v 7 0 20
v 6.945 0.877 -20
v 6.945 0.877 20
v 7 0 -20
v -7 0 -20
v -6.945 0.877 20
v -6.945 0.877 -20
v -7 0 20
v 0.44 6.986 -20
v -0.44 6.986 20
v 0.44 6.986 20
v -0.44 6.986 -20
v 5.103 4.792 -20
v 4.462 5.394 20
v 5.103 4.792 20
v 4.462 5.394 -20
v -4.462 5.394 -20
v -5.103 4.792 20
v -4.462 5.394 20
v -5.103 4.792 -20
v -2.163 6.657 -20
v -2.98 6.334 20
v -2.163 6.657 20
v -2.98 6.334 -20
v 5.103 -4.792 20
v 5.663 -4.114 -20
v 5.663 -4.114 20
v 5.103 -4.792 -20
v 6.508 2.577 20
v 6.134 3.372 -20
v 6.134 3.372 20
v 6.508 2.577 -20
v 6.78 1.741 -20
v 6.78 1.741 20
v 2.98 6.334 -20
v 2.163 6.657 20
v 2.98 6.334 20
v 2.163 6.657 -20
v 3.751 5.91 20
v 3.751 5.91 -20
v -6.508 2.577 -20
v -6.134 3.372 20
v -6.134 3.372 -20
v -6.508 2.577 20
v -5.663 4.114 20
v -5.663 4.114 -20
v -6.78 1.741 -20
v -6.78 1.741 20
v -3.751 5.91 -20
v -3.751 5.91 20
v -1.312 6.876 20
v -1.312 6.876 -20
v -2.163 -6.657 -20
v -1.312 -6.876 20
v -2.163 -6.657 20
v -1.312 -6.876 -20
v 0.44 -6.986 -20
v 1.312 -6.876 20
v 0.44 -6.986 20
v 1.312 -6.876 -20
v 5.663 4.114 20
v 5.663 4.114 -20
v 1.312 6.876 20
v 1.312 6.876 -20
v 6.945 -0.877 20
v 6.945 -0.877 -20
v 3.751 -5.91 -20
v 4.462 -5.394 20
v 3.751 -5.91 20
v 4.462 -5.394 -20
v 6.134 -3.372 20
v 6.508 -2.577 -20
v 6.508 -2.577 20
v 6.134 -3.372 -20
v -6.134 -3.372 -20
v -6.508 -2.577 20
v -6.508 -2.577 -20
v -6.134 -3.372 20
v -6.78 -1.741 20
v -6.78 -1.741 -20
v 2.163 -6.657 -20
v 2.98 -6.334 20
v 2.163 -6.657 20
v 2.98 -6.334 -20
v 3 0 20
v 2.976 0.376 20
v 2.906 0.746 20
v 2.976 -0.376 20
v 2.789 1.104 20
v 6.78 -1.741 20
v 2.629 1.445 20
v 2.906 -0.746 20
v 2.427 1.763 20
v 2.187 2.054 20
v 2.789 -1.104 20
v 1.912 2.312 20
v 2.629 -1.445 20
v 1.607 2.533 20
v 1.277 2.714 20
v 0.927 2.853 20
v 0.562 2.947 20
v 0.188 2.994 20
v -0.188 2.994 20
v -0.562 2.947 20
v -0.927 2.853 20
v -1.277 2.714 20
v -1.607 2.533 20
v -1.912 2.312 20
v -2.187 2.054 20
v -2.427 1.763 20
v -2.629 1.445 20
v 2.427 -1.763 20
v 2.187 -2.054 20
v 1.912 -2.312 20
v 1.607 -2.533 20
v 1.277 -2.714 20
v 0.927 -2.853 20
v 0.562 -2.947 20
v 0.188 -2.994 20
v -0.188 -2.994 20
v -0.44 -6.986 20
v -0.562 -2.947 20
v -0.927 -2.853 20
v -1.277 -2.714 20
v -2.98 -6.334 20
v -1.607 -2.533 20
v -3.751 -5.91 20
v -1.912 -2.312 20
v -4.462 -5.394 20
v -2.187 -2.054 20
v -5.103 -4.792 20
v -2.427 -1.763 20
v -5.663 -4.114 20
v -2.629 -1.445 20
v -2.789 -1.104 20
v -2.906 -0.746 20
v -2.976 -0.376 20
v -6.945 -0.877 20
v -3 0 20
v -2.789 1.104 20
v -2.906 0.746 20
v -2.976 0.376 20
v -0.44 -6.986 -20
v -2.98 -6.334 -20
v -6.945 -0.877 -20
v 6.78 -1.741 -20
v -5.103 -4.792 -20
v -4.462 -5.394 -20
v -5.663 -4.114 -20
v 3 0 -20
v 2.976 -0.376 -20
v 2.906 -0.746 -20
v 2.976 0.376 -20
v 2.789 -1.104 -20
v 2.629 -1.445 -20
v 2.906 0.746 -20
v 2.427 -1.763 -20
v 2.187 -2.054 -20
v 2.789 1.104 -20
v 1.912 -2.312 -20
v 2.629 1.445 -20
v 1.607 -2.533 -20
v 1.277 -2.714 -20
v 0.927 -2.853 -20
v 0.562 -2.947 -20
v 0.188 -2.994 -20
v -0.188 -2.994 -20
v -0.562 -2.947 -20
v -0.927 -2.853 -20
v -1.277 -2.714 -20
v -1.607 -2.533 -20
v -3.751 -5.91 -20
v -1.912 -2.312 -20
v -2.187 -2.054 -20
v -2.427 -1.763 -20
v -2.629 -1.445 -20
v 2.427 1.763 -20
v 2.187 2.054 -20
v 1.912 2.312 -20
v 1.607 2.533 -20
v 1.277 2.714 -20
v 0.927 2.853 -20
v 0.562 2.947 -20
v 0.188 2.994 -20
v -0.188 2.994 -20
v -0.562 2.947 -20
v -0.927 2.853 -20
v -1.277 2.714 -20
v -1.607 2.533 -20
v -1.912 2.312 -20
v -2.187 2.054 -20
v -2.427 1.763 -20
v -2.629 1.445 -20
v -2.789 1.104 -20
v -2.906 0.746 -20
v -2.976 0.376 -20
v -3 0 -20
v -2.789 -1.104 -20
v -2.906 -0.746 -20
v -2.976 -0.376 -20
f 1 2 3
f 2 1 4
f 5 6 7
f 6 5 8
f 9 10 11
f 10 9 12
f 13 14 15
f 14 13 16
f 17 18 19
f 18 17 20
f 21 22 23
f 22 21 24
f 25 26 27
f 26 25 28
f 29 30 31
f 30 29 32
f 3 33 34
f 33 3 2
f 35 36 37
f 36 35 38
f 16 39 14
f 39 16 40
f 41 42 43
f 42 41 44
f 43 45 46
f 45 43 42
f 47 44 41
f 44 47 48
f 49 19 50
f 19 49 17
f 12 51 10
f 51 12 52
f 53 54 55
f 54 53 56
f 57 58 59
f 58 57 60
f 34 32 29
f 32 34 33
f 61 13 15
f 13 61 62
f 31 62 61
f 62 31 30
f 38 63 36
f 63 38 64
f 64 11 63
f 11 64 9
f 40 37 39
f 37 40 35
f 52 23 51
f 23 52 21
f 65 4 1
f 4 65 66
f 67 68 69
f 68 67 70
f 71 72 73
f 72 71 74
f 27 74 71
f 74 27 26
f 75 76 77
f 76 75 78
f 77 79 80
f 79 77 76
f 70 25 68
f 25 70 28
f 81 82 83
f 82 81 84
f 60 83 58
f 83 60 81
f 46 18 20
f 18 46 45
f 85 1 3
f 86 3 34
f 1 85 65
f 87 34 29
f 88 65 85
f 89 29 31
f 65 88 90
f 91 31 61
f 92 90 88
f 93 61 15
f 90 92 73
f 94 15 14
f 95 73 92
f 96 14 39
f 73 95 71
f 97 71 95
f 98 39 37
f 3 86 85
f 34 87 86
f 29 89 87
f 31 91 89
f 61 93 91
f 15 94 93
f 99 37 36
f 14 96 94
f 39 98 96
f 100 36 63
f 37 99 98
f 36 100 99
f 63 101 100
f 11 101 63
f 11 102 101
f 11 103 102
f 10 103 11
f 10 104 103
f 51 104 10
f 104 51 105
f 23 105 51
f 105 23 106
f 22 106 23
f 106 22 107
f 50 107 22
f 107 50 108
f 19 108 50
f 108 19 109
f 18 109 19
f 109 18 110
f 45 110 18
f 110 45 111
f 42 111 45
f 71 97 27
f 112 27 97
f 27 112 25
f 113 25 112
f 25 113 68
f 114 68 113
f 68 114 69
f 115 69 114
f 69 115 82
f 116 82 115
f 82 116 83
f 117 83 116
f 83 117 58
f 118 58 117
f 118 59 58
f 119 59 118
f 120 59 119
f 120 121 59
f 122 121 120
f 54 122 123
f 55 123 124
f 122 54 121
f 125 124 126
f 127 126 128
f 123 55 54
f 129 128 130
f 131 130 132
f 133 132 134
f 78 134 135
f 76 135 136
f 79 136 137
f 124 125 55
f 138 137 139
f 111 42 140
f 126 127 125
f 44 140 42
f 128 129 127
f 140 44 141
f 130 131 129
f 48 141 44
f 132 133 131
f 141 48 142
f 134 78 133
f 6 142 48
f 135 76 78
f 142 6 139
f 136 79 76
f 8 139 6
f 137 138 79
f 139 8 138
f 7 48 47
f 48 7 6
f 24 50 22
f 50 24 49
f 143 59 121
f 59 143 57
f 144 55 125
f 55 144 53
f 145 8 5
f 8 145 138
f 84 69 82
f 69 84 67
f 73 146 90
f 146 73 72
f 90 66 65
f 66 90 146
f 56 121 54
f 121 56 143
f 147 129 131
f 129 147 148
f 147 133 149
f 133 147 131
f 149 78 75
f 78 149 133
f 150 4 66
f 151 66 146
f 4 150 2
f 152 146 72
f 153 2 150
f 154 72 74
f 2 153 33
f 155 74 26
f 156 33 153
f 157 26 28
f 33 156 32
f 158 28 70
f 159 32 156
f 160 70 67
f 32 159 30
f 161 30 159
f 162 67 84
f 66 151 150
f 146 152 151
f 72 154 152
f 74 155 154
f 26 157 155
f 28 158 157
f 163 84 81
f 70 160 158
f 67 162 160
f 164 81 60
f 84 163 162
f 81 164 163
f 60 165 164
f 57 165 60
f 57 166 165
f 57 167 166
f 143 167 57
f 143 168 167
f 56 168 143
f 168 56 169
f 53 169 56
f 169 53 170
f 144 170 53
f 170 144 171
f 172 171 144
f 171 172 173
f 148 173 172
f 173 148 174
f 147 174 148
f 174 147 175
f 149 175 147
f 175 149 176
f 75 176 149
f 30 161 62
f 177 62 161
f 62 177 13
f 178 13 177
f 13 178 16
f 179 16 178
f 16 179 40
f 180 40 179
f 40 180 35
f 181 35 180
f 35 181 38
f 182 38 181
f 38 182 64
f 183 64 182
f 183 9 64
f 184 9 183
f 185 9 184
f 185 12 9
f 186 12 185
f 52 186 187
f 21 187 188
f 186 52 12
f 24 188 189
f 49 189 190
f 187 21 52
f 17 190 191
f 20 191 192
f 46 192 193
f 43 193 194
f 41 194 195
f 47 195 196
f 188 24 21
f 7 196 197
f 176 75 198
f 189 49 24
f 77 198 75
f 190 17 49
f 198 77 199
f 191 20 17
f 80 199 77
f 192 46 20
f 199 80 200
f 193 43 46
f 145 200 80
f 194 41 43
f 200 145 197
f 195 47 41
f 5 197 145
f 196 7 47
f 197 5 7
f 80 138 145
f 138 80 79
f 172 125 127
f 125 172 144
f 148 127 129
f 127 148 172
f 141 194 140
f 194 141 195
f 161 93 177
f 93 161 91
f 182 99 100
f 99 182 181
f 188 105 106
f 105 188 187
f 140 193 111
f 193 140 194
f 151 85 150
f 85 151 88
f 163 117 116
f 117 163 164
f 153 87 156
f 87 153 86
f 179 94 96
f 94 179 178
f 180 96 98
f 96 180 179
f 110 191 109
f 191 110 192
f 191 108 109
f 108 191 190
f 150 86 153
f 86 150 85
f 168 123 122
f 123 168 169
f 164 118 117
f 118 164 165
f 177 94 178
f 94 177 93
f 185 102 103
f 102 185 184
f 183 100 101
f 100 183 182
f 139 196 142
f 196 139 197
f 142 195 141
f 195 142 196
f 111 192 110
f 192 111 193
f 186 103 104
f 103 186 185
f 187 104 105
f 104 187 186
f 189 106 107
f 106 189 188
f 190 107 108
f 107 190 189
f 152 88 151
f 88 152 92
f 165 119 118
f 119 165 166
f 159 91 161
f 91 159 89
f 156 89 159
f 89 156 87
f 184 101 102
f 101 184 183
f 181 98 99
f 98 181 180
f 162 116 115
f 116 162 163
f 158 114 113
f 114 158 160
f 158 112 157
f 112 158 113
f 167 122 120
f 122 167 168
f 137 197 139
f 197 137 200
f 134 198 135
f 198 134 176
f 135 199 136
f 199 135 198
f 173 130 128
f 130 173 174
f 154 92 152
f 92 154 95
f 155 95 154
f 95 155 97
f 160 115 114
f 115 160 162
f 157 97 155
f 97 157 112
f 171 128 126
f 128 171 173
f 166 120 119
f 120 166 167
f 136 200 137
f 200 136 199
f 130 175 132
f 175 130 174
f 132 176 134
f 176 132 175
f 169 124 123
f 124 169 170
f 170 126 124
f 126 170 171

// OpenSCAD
$fn = 50;


difference() {
	union() {
		translate(v = [0, 0, -20.0000000000]) {
			cylinder(h = 40, r = 7.0000000000);
		}
	}
	union() {
		translate(v = [0, 0, -100.0000000000]) {
			cylinder(h = 200, r = 3.0000000000);
		}
	}
}
